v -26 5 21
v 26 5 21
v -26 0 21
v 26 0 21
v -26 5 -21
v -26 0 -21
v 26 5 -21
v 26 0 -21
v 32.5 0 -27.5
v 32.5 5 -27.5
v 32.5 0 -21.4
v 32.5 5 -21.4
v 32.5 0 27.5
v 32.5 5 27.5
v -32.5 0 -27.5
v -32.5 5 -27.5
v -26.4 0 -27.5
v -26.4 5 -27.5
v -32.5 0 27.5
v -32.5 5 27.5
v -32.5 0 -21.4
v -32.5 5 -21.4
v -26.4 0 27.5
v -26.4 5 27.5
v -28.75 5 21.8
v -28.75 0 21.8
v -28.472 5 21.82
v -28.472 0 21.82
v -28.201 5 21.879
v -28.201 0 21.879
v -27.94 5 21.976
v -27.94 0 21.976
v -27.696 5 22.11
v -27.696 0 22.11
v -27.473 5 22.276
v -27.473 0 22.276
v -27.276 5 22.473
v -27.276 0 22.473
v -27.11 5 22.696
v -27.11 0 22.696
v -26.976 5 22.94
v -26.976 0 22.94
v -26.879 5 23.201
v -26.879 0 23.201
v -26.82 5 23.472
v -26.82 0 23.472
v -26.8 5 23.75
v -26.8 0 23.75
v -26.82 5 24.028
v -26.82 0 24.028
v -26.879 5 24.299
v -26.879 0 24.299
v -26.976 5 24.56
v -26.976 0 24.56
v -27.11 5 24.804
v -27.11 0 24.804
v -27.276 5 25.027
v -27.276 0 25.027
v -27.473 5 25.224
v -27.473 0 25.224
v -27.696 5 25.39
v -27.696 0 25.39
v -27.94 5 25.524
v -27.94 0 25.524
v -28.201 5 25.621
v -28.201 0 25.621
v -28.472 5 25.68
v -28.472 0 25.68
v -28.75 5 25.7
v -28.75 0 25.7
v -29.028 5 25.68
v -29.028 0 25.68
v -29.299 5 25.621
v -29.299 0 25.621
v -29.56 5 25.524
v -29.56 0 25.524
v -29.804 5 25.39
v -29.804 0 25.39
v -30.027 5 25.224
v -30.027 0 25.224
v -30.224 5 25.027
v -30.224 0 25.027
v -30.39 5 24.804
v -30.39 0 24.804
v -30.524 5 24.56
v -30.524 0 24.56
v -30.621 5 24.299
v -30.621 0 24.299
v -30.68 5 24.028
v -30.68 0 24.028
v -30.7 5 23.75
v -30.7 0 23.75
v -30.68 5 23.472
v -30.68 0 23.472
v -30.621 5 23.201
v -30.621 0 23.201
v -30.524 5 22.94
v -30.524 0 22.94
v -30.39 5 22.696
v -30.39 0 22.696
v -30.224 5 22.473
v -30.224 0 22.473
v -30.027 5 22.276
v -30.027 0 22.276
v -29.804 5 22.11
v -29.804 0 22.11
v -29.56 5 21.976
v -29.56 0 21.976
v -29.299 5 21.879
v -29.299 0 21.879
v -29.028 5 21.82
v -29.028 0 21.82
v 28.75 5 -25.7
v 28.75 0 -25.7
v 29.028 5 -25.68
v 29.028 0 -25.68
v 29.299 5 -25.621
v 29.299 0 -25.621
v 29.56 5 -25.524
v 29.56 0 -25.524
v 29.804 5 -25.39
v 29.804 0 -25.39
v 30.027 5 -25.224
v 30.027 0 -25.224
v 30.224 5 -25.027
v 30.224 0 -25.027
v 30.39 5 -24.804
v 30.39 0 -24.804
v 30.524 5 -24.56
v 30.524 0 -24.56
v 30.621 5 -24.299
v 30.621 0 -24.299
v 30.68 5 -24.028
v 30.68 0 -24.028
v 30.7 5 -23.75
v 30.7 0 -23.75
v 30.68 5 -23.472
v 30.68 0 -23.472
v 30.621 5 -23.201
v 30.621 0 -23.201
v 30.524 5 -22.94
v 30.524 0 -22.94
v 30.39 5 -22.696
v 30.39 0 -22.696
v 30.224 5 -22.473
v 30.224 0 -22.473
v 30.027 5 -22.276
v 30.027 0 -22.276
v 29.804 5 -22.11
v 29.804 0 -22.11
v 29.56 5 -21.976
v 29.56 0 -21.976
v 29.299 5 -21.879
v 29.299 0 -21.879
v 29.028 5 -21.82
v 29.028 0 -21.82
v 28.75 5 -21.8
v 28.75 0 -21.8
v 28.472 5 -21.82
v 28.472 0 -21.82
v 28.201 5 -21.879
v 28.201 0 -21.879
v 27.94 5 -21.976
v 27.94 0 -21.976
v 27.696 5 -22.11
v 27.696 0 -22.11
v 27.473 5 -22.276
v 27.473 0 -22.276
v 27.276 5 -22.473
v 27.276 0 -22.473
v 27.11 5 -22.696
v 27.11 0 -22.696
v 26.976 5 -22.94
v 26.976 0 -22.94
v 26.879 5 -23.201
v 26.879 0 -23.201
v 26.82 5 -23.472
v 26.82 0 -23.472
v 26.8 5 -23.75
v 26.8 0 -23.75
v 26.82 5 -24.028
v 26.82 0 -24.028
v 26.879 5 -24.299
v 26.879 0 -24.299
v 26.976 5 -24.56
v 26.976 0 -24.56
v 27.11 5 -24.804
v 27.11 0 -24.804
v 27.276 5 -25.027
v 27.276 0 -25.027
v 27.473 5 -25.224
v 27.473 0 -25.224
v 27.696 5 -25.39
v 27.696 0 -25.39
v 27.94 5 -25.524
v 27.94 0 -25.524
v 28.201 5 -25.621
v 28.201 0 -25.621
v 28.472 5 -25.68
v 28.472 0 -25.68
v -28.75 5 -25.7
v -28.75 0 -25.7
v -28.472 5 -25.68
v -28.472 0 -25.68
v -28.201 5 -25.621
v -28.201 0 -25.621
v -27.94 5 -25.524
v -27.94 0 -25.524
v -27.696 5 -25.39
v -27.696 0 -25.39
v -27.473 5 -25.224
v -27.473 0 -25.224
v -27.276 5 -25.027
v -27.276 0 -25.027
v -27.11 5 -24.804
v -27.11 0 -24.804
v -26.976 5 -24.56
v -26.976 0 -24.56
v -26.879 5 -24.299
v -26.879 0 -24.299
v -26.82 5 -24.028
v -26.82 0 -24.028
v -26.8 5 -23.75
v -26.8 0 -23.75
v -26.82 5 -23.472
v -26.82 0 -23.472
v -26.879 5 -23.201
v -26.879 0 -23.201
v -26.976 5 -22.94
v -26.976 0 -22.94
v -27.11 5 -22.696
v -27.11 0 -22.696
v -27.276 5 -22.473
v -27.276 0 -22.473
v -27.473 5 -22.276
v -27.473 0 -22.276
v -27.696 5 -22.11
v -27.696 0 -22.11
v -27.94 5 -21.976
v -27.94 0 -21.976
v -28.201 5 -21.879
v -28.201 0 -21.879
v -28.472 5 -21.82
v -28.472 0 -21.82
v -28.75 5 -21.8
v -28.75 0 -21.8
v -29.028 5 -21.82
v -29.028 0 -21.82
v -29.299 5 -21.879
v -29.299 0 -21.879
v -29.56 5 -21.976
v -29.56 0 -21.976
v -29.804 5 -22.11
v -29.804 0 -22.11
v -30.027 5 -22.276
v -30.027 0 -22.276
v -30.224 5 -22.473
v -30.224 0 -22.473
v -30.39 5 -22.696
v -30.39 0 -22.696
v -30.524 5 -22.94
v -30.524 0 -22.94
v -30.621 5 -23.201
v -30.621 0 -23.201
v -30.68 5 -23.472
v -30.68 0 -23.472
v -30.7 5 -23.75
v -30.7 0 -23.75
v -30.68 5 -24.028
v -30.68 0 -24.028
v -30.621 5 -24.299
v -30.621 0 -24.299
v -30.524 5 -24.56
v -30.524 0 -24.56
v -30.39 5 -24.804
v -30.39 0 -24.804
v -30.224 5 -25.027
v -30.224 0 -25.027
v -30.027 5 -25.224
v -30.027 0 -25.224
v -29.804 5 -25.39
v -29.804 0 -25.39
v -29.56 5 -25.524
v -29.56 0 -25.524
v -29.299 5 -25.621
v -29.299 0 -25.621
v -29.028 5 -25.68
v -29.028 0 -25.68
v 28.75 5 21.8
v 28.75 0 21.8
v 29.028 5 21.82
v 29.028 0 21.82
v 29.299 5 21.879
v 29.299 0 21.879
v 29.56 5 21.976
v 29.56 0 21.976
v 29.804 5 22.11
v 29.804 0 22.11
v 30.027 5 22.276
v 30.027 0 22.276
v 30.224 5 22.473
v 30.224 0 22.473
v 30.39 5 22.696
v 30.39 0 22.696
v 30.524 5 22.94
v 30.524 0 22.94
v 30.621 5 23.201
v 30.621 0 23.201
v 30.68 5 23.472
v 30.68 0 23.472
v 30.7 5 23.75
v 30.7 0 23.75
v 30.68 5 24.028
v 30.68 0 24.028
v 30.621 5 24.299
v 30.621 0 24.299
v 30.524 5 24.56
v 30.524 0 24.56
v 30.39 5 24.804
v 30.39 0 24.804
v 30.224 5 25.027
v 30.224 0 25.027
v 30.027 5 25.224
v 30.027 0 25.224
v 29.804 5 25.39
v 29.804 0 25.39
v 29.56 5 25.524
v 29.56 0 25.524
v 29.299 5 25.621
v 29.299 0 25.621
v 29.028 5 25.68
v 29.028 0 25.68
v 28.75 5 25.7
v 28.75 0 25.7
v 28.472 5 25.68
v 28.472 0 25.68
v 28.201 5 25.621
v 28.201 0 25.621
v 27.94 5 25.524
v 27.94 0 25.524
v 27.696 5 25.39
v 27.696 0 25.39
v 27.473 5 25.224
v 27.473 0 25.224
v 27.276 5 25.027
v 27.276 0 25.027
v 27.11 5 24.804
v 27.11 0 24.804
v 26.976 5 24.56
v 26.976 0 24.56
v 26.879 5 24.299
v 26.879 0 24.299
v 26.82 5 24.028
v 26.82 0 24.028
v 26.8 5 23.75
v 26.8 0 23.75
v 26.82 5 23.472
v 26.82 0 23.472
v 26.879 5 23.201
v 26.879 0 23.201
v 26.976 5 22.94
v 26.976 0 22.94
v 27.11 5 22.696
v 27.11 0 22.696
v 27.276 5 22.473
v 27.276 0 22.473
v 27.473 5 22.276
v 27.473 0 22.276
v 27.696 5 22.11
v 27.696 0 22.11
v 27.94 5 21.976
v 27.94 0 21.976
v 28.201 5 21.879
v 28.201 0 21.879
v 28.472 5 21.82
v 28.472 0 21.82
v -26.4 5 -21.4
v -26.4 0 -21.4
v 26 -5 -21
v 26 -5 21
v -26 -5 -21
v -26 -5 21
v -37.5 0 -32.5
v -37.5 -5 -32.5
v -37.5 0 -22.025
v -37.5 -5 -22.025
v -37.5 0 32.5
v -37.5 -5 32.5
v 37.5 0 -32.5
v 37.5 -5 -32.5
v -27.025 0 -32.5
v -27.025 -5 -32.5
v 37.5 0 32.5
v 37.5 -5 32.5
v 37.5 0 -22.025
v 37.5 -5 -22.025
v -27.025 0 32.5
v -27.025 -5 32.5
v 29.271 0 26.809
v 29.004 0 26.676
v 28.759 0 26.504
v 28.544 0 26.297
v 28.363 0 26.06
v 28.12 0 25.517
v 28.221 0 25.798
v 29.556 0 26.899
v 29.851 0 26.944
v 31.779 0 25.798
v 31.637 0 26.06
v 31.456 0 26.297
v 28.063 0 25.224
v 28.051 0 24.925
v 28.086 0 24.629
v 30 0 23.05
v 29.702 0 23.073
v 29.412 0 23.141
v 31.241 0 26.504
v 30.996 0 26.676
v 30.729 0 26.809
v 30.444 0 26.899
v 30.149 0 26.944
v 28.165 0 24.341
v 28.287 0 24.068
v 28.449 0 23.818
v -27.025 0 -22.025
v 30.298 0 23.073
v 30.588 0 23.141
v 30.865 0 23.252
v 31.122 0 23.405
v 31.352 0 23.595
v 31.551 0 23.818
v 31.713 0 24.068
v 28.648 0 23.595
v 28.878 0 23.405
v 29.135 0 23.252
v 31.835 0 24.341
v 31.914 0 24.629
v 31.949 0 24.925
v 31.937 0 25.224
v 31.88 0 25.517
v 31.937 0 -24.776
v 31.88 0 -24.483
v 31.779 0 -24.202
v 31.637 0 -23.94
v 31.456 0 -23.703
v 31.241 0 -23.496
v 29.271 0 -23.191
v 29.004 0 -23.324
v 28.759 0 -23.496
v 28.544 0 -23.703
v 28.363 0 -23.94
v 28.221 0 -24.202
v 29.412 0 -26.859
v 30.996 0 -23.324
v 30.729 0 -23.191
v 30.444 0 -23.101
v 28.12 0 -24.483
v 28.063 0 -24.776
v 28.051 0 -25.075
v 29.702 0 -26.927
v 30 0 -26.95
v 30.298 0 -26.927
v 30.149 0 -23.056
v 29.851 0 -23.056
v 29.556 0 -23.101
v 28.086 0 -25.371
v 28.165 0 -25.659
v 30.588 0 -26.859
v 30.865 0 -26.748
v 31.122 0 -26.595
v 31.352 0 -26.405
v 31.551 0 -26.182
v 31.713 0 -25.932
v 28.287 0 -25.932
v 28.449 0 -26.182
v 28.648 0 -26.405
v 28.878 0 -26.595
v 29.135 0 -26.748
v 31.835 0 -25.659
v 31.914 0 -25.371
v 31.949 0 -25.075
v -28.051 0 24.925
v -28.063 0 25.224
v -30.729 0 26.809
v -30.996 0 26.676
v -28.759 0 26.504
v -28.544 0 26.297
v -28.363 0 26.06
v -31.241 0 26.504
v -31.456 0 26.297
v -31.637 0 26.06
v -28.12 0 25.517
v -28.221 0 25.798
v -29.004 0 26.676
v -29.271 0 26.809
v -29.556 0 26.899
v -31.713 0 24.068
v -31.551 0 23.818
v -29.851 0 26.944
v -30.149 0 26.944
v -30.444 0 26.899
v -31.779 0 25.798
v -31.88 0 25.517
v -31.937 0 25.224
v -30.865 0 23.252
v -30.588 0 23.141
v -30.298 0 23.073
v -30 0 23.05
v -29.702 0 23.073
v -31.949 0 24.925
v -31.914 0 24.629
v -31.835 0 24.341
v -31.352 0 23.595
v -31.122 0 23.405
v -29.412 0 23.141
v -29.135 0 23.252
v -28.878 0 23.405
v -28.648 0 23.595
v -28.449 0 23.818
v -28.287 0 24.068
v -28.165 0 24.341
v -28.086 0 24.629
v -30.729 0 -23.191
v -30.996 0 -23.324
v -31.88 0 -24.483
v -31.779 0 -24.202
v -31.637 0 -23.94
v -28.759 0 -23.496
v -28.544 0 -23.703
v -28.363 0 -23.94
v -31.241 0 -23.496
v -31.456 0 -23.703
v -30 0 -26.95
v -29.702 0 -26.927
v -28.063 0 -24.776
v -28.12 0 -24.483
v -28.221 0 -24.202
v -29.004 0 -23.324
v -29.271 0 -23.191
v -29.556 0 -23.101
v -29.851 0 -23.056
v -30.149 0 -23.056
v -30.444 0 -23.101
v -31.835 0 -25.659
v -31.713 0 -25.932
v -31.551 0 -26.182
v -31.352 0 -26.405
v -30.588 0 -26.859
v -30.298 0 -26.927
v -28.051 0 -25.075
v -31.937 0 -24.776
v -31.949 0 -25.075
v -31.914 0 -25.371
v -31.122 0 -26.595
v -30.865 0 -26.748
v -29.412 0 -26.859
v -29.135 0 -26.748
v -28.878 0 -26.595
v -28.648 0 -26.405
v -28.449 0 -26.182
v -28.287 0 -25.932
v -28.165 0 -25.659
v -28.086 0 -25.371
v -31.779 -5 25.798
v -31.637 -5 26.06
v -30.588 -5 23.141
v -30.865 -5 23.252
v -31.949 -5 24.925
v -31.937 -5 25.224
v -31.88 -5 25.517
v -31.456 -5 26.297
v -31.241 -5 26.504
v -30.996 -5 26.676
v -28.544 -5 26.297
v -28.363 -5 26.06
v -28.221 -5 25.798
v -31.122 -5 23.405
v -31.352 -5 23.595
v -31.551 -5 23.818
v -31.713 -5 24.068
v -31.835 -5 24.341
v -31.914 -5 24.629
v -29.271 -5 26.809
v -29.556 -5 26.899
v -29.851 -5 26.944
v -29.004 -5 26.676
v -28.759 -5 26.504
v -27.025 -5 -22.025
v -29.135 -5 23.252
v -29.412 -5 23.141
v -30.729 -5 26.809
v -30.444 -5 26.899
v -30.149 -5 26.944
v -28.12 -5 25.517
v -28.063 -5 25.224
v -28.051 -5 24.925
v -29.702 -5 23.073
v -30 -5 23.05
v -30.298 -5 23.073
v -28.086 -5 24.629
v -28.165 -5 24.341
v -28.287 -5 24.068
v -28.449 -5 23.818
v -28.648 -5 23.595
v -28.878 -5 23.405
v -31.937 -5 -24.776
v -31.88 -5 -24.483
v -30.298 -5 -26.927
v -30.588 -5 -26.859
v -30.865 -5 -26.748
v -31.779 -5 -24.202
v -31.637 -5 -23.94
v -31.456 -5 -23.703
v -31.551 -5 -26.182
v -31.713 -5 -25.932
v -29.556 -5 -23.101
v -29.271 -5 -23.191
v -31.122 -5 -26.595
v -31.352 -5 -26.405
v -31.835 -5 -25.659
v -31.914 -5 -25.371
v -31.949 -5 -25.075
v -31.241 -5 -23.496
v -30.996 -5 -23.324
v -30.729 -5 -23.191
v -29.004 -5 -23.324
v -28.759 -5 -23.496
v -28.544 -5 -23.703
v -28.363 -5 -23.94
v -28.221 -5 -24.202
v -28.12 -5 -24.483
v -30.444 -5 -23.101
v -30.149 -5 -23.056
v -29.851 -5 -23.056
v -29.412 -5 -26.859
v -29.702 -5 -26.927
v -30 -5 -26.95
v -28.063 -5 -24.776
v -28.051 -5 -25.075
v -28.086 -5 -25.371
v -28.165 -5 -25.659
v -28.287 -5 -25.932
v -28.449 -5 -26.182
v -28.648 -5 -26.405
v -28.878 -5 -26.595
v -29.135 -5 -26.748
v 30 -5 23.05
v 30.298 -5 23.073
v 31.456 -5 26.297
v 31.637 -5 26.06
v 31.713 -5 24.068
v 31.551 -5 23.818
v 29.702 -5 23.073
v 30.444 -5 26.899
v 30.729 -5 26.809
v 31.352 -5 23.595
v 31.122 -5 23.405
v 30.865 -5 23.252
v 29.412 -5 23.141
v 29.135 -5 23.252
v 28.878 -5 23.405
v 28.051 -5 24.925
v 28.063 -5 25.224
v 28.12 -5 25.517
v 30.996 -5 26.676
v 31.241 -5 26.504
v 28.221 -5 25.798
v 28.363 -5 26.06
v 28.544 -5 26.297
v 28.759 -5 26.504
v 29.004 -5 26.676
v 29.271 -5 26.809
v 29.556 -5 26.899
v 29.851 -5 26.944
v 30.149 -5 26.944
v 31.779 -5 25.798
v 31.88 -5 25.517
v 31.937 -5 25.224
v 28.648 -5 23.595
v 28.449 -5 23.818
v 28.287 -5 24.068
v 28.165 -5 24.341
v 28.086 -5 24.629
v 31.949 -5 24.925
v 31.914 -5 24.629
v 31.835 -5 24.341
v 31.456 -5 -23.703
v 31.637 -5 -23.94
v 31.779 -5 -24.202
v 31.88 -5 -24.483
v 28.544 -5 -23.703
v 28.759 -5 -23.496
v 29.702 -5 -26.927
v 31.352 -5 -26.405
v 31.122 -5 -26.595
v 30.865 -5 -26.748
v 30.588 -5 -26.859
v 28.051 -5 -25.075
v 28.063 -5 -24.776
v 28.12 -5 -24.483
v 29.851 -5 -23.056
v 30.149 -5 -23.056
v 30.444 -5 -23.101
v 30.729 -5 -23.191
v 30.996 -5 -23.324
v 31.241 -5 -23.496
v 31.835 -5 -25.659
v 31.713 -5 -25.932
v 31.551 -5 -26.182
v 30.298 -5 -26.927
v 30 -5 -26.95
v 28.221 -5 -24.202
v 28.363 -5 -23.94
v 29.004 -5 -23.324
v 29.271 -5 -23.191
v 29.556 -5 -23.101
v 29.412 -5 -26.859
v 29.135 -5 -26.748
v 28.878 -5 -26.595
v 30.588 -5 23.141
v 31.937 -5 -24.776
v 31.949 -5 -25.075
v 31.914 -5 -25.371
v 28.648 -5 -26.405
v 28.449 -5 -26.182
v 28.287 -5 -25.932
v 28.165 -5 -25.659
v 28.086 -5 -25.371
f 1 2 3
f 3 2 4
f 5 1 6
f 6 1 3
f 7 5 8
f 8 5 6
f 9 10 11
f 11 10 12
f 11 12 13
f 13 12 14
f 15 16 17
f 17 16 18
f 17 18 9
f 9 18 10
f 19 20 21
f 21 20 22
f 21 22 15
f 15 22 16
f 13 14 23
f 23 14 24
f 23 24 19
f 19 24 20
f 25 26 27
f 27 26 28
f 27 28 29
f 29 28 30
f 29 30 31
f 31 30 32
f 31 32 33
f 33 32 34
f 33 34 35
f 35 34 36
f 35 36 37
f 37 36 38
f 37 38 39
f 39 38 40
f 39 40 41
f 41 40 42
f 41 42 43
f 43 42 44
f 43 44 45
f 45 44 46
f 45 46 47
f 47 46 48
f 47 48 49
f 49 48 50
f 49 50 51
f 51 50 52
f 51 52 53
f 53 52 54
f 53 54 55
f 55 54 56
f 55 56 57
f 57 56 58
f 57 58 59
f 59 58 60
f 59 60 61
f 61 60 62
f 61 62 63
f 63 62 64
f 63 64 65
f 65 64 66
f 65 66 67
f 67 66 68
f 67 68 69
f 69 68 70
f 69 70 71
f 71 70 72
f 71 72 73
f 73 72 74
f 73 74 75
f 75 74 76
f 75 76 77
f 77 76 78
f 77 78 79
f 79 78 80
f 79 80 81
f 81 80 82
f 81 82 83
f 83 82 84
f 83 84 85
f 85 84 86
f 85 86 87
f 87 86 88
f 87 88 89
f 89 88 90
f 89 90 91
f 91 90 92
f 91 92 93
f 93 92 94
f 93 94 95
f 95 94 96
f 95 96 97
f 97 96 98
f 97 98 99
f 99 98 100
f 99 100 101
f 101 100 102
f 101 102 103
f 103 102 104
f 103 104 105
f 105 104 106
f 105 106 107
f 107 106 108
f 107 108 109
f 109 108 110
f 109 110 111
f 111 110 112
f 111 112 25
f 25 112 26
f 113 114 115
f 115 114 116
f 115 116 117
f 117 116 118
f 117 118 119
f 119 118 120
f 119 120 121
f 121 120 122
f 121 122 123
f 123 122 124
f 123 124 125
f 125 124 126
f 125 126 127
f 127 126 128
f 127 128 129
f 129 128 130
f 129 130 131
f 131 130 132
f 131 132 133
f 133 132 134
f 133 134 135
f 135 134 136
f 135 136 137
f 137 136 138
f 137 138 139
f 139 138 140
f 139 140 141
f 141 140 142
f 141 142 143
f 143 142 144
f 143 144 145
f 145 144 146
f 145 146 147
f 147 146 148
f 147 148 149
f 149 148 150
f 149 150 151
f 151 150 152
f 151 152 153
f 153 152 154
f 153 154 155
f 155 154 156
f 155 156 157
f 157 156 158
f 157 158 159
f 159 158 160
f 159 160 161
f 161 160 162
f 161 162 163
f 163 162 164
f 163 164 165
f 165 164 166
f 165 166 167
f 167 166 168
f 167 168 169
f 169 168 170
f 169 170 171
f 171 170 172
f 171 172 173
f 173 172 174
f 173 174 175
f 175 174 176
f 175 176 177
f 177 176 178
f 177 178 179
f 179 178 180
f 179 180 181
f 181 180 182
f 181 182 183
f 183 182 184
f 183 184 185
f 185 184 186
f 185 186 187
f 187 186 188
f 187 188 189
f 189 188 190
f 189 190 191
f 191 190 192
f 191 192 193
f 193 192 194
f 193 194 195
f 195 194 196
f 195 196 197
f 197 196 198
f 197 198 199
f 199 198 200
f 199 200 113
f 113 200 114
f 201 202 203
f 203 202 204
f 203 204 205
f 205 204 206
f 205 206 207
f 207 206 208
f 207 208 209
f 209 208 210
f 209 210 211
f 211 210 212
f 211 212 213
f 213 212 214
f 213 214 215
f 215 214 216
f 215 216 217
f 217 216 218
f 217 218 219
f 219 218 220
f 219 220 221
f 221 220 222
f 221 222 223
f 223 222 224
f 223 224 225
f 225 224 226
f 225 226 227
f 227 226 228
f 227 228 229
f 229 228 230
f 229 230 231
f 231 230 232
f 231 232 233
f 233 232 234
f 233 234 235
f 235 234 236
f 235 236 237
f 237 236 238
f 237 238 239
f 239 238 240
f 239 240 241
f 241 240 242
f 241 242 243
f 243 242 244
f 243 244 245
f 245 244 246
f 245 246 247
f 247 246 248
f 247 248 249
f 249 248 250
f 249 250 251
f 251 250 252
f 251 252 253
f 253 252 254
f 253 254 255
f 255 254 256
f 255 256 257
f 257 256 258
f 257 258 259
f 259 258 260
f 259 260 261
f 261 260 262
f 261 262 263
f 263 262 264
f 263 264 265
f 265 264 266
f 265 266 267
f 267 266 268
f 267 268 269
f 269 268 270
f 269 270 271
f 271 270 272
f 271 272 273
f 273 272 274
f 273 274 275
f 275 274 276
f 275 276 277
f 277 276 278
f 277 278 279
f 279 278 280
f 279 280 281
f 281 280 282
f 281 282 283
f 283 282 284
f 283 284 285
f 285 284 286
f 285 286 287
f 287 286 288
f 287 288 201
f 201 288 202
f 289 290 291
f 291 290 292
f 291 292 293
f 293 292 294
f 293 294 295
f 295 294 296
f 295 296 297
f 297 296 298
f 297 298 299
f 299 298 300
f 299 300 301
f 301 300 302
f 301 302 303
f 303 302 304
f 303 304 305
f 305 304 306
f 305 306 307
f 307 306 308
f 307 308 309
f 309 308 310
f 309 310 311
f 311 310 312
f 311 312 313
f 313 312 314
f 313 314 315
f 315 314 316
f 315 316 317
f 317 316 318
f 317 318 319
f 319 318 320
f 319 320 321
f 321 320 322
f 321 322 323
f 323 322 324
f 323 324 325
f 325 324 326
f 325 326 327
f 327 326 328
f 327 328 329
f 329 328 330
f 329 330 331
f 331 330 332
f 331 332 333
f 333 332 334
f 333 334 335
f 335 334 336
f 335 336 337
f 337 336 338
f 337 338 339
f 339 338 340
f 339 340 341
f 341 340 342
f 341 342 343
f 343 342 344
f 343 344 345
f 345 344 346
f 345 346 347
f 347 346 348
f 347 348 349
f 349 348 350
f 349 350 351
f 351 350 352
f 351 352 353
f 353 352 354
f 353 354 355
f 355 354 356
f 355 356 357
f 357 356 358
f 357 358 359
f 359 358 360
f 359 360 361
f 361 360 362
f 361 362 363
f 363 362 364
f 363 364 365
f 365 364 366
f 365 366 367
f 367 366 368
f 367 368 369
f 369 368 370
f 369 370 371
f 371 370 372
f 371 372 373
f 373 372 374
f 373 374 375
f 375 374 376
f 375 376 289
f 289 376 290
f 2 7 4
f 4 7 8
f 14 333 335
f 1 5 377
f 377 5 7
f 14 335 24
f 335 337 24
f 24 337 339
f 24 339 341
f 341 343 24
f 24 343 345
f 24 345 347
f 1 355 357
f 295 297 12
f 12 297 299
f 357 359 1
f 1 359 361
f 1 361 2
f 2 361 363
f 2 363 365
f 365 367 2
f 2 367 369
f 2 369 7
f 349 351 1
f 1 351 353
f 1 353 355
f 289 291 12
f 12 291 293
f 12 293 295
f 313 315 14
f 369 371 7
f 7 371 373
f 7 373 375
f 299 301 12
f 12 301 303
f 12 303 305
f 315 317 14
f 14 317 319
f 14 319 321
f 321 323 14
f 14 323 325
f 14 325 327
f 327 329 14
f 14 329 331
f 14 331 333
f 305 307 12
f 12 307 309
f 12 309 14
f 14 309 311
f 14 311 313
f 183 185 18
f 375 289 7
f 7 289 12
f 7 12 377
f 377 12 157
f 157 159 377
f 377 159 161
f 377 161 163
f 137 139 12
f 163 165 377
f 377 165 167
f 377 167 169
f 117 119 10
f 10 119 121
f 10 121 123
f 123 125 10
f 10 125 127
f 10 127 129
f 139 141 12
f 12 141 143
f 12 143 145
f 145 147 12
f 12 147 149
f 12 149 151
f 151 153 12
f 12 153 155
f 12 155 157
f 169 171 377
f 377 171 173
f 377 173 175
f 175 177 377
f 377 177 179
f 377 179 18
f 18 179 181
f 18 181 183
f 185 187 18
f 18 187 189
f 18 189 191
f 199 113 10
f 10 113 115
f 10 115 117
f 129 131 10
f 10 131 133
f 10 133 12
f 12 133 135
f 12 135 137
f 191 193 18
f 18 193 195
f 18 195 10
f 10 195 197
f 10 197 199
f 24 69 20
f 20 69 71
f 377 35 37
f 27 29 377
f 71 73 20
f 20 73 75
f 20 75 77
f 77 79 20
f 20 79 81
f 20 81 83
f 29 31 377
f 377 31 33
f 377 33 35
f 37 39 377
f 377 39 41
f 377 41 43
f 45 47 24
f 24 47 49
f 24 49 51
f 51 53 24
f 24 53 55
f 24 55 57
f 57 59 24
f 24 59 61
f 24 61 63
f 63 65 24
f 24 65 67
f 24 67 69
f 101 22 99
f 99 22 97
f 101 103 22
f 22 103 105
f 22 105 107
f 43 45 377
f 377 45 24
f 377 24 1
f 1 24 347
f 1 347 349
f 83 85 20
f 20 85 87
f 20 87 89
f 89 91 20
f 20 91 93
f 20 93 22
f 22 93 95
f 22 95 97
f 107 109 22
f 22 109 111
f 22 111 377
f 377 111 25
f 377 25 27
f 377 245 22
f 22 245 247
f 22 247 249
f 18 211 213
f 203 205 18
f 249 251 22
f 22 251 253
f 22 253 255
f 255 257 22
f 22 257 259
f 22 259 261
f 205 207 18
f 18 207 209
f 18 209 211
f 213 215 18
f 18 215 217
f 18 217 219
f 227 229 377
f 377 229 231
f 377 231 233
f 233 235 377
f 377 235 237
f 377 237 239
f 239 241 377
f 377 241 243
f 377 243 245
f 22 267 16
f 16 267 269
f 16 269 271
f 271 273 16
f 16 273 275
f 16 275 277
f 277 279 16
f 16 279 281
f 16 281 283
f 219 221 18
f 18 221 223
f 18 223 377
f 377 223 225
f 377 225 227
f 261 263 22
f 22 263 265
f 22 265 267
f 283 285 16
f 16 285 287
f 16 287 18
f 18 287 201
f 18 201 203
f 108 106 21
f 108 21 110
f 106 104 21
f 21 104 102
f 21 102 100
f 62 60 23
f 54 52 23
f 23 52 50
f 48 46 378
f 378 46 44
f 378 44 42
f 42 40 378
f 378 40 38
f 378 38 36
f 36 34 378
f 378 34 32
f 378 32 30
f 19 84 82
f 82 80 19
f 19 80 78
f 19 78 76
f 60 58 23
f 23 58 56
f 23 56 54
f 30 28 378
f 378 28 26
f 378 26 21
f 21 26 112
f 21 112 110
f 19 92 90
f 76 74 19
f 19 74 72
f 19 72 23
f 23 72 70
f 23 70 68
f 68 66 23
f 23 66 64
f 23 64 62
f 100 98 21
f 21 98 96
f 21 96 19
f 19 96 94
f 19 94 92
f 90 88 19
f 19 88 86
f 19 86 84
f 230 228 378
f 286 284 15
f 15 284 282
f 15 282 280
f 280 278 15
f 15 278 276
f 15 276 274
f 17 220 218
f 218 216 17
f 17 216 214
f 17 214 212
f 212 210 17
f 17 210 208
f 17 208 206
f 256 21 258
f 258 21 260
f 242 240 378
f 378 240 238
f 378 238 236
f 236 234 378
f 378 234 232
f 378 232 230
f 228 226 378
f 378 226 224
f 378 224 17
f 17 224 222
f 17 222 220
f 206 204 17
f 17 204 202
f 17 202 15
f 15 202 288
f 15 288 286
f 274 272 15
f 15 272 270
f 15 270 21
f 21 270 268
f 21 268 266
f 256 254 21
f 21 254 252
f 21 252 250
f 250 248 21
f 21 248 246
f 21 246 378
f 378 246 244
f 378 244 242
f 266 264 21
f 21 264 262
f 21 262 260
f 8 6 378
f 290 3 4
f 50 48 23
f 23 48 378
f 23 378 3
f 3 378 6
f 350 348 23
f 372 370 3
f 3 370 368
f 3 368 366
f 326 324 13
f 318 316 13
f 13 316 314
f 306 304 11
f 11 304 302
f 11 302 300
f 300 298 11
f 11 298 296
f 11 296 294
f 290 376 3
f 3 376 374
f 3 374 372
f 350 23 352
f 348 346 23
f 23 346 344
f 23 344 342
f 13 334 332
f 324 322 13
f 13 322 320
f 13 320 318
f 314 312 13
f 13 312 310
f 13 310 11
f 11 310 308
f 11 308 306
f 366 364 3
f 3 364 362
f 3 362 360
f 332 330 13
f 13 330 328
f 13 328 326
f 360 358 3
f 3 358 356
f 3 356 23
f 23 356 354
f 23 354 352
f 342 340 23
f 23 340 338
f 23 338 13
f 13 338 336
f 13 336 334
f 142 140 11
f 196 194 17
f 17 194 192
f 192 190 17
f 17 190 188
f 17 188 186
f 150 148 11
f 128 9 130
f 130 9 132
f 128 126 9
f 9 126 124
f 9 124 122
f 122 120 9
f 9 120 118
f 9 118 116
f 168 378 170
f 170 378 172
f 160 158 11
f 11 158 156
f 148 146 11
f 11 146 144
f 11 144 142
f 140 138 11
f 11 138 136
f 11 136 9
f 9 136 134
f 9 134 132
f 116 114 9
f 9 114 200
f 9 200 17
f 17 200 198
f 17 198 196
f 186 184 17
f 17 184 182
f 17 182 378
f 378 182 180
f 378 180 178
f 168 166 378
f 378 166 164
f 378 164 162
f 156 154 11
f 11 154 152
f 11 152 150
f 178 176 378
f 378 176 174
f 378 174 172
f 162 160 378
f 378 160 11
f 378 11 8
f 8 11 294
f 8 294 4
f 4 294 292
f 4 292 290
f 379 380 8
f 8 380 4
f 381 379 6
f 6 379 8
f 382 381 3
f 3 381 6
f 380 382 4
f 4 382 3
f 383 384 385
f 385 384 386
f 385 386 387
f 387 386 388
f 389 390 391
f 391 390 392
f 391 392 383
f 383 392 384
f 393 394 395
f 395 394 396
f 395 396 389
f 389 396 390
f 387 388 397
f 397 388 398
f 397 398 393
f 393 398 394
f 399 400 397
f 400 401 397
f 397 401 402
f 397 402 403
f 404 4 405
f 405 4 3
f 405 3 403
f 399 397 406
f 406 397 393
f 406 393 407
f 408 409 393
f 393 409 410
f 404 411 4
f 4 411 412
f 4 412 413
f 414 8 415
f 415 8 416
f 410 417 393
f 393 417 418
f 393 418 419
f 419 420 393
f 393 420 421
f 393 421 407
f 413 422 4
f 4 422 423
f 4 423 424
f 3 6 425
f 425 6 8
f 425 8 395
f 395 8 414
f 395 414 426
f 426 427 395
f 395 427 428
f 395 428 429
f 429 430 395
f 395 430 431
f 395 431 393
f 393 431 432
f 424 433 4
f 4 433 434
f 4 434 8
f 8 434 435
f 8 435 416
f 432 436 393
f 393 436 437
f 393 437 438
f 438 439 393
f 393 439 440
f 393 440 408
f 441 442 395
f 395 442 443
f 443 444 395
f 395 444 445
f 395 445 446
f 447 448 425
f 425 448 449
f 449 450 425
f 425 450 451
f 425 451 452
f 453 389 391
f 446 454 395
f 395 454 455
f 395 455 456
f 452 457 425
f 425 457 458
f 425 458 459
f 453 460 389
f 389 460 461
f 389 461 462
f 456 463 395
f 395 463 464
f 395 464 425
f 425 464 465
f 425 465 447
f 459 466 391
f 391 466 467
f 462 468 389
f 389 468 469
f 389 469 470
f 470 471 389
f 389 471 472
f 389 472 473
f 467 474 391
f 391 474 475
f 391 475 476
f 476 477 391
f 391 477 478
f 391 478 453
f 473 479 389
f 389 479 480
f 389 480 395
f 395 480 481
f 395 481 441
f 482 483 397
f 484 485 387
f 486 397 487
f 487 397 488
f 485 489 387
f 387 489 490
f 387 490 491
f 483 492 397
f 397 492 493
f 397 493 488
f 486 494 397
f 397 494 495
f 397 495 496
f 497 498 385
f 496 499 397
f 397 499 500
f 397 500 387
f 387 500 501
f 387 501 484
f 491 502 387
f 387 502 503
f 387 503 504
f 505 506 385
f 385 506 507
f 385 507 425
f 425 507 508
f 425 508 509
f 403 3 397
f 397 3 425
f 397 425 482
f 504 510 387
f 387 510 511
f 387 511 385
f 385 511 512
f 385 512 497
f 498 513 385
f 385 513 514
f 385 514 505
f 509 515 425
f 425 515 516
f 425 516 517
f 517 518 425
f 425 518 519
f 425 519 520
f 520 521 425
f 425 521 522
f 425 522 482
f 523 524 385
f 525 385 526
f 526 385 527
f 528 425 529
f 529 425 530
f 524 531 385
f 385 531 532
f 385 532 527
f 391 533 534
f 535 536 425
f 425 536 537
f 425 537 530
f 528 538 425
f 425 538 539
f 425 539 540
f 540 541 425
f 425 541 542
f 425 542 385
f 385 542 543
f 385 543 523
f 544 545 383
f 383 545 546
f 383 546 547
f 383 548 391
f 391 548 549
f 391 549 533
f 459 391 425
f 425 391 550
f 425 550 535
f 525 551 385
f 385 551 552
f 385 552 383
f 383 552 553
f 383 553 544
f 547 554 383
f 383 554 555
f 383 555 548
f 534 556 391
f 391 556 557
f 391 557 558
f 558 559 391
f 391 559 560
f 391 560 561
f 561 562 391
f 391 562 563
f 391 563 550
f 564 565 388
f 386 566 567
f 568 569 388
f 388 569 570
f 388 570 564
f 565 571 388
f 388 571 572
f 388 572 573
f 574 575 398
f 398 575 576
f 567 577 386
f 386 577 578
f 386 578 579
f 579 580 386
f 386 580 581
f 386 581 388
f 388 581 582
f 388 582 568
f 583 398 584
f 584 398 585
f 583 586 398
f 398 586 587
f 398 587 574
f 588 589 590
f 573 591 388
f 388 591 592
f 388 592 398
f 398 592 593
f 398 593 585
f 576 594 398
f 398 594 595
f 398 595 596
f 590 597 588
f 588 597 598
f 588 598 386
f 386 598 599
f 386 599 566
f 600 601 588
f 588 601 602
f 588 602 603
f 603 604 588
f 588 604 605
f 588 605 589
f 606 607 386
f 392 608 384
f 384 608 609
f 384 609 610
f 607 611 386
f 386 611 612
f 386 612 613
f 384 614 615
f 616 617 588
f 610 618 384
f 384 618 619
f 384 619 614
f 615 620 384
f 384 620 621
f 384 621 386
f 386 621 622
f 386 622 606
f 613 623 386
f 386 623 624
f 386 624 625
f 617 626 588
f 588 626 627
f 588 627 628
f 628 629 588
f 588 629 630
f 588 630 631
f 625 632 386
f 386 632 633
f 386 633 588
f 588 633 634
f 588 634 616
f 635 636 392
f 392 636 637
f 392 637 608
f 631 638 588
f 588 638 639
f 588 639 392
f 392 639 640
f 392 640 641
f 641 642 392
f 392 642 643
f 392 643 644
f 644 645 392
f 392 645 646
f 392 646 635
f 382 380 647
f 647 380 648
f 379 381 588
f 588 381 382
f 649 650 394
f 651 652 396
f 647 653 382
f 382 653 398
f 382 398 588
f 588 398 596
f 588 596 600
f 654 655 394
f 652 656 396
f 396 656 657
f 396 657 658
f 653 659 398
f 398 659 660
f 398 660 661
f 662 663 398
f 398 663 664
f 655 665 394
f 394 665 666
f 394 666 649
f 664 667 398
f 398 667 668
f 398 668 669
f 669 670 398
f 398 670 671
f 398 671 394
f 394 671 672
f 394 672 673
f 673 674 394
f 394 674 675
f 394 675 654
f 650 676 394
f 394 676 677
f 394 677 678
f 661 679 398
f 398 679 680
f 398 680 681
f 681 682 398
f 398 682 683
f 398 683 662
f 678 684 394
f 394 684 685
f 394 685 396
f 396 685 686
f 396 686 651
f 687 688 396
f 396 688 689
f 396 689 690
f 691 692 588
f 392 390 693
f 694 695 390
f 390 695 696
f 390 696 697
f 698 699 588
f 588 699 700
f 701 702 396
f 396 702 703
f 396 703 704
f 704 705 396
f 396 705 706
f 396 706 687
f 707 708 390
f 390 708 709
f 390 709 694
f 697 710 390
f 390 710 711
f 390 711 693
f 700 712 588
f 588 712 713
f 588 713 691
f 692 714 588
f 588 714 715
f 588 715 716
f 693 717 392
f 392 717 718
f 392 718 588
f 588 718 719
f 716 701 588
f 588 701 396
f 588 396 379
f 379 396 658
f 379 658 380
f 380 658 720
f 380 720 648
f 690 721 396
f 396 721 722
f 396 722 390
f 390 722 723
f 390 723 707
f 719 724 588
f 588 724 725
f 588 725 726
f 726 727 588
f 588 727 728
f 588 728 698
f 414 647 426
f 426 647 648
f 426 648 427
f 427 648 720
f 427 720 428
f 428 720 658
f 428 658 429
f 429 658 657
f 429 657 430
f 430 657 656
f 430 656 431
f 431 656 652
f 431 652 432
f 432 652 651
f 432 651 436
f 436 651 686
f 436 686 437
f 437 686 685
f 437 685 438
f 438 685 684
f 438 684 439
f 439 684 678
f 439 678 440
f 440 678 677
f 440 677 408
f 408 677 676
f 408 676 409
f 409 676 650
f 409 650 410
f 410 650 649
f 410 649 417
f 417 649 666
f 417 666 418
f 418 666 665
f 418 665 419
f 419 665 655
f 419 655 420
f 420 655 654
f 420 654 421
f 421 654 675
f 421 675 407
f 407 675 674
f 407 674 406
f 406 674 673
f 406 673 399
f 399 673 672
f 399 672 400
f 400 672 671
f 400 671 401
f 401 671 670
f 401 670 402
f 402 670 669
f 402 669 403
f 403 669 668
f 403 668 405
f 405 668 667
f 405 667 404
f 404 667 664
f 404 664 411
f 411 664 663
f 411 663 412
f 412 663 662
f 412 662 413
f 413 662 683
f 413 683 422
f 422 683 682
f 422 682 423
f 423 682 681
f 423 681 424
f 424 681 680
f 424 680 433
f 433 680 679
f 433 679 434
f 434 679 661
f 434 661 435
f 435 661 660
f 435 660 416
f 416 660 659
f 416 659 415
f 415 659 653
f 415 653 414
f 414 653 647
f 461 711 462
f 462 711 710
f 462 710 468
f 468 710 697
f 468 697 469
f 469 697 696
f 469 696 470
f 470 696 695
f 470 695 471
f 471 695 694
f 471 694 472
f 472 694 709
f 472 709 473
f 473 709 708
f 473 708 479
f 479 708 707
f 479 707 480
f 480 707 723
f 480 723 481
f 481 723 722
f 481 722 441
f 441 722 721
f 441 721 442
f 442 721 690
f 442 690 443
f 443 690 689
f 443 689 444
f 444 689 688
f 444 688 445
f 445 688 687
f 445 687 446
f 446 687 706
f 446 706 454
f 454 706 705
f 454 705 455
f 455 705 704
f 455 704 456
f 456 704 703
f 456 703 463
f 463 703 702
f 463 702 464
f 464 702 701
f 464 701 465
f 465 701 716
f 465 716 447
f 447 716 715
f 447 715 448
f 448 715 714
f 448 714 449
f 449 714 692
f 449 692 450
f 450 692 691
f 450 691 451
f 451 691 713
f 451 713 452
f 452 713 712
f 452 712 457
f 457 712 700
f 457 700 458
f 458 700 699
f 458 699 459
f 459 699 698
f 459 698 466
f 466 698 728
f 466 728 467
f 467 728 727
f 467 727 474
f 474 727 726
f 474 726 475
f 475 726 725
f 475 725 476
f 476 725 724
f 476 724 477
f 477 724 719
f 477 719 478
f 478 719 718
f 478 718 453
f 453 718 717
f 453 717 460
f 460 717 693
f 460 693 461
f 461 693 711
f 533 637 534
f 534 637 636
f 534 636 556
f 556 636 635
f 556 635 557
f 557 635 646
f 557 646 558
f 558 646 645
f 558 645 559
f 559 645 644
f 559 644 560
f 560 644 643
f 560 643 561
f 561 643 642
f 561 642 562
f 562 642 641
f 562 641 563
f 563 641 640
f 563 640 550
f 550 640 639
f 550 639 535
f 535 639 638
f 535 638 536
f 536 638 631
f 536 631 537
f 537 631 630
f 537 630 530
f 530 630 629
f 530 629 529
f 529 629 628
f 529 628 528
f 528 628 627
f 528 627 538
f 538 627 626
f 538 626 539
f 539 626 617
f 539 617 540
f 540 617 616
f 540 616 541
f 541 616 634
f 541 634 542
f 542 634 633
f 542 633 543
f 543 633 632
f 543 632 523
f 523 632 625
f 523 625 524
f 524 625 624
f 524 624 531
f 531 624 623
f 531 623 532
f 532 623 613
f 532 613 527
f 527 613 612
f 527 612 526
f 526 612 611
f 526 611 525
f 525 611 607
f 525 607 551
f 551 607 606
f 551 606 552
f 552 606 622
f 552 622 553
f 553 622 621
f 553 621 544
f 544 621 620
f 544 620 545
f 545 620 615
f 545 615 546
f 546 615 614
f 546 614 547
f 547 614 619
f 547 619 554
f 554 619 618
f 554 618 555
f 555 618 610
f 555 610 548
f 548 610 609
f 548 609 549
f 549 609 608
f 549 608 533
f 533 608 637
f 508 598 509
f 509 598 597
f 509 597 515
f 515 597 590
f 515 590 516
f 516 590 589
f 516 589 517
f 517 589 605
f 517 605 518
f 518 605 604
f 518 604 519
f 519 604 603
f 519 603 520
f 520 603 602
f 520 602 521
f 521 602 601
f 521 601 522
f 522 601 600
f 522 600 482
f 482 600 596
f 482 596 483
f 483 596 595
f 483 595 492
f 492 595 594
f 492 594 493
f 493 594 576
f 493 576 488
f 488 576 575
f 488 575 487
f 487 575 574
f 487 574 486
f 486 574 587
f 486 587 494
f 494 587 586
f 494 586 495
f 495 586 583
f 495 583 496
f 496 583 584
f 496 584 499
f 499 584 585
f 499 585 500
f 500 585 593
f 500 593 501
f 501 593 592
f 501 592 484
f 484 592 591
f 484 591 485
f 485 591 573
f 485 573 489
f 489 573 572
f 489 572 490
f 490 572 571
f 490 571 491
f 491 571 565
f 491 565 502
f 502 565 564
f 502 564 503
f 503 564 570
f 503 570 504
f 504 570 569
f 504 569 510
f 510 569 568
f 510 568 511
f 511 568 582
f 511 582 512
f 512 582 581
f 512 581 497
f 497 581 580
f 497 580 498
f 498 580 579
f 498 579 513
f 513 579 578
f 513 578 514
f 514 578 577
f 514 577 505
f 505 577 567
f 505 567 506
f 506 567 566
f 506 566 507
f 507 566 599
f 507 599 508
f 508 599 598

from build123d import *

# Parameters (mm, degrees)
SKETCH1_W           = 65
SKETCH1_H           = 55
SKETCH1_R           = 1.95
SKETCH1_W_2         = 52
SKETCH1_H_2         = 42
BOSS_EXTRUDE1_DEPTH = 5
SKETCH1_3_W         = 75
SKETCH1_3_H         = 65
SKETCH1_3_W_2       = 52
SKETCH1_3_H_2       = 42
BOSS_EXTRUDE2_DEPTH = 5
SKETCH2_R           = 1.95
CUT_EXTRUDE1_DEPTH  = 5


with BuildPart() as part:
    # Sketch1 → Boss-Extrude1 (new body)
    with BuildSketch(Plane(origin=(0, 0, 0), x_dir=(1, 0, 0), z_dir=(0, 1, 0))):
        Rectangle(SKETCH1_W, SKETCH1_H)
        with Locations((-28.75, 23.75)):
            Circle(SKETCH1_R, mode=Mode.SUBTRACT)
        with Locations((28.75, 23.75)):
            Circle(SKETCH1_R, mode=Mode.SUBTRACT)
        with Locations((-28.75, -23.75)):
            Circle(SKETCH1_R, mode=Mode.SUBTRACT)
        with Locations((28.75, -23.75)):
            Circle(SKETCH1_R, mode=Mode.SUBTRACT)
        Rectangle(SKETCH1_W_2, SKETCH1_H_2, mode=Mode.SUBTRACT)
    extrude(amount=BOSS_EXTRUDE1_DEPTH)


with BuildPart() as body_2:
    # Sketch1<3> → Boss-Extrude2 (new body)
    with BuildSketch(Plane(origin=(0, 0, 0), x_dir=(1, 0, 0), z_dir=(0, 1, 0))):
        Rectangle(SKETCH1_3_W, SKETCH1_3_H)
        Rectangle(SKETCH1_3_W_2, SKETCH1_3_H_2, mode=Mode.SUBTRACT)
    extrude(amount=-BOSS_EXTRUDE2_DEPTH)

    # Sketch2 → Cut-Extrude1 (cut)
    with BuildSketch(Plane.XZ.offset(5)):
        with Locations((-30, 25)):
            Circle(SKETCH2_R)
        with Locations((30, 25)):
            Circle(SKETCH2_R)
        with Locations((-30, -25)):
            Circle(SKETCH2_R)
        with Locations((30, -25)):
            Circle(SKETCH2_R)
    extrude(amount=-CUT_EXTRUDE1_DEPTH, mode=Mode.SUBTRACT)


solid = Compound([part.part, body_2.part])
